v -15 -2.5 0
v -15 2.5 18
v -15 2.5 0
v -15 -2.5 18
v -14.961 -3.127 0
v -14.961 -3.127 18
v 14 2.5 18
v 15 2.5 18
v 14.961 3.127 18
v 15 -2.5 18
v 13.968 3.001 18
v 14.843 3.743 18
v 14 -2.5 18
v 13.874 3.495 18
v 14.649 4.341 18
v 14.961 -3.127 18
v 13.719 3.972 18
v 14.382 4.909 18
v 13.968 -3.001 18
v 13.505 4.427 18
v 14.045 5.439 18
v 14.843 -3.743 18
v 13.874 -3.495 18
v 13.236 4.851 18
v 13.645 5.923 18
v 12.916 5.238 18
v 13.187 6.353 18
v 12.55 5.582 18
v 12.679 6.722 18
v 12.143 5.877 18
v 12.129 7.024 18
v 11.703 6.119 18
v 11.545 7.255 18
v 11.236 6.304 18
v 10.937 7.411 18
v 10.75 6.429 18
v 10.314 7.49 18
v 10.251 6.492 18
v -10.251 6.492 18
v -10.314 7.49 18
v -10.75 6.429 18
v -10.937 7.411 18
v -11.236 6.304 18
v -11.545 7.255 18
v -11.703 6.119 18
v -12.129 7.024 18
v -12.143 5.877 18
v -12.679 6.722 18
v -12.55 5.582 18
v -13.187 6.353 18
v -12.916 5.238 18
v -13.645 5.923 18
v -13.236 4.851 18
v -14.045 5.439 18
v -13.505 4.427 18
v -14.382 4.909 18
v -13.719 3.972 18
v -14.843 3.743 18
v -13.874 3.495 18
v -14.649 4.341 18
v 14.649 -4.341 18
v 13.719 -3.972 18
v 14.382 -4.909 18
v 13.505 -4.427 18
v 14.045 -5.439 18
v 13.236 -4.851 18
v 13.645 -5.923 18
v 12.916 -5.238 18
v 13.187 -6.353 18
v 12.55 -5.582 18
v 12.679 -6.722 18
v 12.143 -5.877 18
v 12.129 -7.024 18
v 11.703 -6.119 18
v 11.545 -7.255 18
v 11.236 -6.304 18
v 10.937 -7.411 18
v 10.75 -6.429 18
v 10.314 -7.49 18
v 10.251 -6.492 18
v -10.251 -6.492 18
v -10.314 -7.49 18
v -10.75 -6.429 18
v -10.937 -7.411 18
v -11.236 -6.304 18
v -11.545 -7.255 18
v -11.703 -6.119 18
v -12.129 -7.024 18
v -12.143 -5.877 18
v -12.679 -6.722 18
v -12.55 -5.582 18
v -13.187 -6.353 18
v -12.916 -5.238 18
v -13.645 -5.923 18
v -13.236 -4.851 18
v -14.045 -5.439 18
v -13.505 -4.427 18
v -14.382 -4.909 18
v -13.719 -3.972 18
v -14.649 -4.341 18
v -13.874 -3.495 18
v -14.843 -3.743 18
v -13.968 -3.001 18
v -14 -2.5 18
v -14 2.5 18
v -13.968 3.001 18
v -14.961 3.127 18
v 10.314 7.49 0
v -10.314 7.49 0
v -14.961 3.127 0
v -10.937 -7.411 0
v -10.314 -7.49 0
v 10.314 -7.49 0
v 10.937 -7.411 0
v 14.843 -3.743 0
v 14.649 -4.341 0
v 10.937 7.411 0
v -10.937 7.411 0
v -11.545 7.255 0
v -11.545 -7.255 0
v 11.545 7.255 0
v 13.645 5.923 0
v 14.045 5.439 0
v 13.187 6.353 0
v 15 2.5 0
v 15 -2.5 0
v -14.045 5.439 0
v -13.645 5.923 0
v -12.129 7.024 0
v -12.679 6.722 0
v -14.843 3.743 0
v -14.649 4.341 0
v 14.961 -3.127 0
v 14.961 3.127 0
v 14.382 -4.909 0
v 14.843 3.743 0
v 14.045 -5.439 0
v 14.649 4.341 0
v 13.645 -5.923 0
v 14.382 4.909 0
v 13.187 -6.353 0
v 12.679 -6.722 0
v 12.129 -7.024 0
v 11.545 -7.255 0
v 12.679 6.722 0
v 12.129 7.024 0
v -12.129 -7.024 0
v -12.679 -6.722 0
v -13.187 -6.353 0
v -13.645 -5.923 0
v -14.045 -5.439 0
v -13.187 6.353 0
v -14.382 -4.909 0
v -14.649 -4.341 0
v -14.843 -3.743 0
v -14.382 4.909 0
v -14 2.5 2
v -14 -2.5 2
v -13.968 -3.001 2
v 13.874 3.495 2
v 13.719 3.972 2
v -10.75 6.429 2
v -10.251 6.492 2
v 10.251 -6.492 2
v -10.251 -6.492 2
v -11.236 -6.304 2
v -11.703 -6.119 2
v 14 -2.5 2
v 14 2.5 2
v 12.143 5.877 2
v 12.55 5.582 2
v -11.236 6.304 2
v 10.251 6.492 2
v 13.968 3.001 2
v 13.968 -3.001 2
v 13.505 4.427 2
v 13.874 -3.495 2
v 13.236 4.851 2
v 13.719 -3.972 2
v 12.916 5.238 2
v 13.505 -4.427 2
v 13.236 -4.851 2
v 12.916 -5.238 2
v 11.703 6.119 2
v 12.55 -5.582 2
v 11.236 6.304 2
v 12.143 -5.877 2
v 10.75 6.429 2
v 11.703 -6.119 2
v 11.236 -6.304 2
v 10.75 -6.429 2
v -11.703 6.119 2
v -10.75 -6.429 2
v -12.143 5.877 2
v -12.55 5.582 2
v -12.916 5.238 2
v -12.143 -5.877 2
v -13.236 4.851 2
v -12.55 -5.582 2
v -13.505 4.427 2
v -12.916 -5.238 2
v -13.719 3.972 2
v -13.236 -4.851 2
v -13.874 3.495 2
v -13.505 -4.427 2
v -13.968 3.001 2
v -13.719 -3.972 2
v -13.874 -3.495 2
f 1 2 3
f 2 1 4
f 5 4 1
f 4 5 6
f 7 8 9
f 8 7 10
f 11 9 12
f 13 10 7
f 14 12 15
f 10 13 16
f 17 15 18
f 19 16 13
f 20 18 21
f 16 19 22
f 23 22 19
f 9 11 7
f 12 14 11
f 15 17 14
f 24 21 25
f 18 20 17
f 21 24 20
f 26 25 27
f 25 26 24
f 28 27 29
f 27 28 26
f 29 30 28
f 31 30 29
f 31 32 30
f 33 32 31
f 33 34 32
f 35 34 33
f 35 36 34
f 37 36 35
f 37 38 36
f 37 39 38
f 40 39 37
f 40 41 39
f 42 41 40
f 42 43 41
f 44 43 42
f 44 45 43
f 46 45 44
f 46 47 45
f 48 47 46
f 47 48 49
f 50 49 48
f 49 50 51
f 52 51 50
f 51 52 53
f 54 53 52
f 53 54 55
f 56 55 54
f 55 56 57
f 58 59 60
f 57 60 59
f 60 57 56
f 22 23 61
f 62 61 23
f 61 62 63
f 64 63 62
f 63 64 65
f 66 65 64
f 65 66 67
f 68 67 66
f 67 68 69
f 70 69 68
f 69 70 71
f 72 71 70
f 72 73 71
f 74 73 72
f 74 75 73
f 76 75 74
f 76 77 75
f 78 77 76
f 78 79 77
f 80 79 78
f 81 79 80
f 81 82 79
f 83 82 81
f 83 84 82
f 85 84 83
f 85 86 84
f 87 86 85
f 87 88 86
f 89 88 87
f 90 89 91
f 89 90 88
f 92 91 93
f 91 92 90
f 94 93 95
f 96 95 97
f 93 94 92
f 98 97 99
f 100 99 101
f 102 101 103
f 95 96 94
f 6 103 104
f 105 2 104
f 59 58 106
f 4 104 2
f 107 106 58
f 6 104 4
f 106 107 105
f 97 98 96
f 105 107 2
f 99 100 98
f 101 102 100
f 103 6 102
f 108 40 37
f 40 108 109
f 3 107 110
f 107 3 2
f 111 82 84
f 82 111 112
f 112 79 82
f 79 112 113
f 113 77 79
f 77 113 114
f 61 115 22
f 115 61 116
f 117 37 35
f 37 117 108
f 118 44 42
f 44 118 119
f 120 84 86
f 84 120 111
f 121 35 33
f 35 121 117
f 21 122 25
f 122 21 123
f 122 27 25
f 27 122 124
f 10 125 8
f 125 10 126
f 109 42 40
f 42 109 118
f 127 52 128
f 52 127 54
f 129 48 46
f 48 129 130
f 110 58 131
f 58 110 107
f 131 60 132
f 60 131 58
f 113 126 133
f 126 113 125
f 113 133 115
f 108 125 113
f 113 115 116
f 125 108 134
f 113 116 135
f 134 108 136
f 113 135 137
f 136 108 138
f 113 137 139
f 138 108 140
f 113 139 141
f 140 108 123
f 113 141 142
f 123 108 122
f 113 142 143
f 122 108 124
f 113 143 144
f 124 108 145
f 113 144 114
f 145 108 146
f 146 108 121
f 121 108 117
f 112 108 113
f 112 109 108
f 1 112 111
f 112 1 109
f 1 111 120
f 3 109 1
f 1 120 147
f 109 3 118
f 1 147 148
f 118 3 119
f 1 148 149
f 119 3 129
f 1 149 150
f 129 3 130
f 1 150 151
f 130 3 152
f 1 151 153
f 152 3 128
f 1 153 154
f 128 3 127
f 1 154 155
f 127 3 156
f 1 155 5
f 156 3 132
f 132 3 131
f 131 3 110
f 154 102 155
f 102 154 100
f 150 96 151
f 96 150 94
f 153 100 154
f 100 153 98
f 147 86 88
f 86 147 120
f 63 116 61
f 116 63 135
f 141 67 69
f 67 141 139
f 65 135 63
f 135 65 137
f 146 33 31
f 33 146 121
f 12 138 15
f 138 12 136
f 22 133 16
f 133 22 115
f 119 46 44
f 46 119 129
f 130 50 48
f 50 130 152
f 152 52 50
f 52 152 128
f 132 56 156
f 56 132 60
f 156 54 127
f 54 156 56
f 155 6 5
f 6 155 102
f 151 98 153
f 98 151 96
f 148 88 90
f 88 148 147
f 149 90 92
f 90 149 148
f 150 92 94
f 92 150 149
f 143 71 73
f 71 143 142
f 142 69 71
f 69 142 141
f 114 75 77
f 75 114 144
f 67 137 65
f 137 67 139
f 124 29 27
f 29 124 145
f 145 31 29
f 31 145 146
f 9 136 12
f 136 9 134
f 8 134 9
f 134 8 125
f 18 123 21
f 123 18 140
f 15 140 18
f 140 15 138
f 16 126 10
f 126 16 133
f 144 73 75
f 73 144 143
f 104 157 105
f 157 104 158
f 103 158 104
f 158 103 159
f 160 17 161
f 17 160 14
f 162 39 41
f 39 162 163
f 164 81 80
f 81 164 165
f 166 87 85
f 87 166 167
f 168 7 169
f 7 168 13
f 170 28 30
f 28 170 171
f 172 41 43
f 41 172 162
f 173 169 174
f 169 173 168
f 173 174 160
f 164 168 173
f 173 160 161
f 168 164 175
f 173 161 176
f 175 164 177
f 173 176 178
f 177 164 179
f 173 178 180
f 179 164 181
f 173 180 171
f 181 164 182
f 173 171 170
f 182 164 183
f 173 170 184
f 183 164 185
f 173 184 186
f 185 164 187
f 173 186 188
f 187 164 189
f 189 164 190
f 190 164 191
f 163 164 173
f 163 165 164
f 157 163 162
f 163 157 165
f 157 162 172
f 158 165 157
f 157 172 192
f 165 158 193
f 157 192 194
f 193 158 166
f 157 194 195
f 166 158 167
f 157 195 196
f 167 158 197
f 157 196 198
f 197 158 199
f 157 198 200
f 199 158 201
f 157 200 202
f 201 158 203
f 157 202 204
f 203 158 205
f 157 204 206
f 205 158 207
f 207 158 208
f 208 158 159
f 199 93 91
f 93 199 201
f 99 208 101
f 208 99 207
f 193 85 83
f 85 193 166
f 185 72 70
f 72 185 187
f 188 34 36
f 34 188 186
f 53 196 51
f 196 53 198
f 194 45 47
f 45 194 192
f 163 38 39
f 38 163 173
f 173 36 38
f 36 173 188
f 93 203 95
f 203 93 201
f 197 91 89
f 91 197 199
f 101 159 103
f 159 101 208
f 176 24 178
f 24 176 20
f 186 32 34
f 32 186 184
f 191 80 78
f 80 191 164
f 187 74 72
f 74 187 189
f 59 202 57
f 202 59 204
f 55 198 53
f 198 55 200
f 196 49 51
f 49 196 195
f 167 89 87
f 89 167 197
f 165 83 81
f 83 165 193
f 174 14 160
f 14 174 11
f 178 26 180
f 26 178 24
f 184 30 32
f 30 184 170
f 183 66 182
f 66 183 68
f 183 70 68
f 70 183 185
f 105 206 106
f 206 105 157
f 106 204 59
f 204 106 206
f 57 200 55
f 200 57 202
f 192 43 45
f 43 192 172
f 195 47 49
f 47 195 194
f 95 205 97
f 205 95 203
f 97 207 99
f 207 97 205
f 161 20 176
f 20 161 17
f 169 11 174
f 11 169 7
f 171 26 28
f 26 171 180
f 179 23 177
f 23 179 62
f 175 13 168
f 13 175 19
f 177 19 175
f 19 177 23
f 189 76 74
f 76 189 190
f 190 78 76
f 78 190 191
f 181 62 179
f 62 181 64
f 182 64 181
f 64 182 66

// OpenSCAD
$fn = 50;


difference() {
	union() {
		hull() {
			translate(v = [-10.0000000000, 2.5000000000, 0]) {
				cylinder(h = 18, r = 5);
			}
			translate(v = [10.0000000000, 2.5000000000, 0]) {
				cylinder(h = 18, r = 5);
			}
			translate(v = [-10.0000000000, -2.5000000000, 0]) {
				cylinder(h = 18, r = 5);
			}
			translate(v = [10.0000000000, -2.5000000000, 0]) {
				cylinder(h = 18, r = 5);
			}
		}
	}
	union() {
		translate(v = [0, 0, 2]) {
			hull() {
				translate(v = [-10.0000000000, 2.5000000000, 0]) {
					cylinder(h = 16, r = 4);
				}
				translate(v = [10.0000000000, 2.5000000000, 0]) {
					cylinder(h = 16, r = 4);
				}
				translate(v = [-10.0000000000, -2.5000000000, 0]) {
					cylinder(h = 16, r = 4);
				}
				translate(v = [10.0000000000, -2.5000000000, 0]) {
					cylinder(h = 16, r = 4);
				}
			}
		}
	}
}
